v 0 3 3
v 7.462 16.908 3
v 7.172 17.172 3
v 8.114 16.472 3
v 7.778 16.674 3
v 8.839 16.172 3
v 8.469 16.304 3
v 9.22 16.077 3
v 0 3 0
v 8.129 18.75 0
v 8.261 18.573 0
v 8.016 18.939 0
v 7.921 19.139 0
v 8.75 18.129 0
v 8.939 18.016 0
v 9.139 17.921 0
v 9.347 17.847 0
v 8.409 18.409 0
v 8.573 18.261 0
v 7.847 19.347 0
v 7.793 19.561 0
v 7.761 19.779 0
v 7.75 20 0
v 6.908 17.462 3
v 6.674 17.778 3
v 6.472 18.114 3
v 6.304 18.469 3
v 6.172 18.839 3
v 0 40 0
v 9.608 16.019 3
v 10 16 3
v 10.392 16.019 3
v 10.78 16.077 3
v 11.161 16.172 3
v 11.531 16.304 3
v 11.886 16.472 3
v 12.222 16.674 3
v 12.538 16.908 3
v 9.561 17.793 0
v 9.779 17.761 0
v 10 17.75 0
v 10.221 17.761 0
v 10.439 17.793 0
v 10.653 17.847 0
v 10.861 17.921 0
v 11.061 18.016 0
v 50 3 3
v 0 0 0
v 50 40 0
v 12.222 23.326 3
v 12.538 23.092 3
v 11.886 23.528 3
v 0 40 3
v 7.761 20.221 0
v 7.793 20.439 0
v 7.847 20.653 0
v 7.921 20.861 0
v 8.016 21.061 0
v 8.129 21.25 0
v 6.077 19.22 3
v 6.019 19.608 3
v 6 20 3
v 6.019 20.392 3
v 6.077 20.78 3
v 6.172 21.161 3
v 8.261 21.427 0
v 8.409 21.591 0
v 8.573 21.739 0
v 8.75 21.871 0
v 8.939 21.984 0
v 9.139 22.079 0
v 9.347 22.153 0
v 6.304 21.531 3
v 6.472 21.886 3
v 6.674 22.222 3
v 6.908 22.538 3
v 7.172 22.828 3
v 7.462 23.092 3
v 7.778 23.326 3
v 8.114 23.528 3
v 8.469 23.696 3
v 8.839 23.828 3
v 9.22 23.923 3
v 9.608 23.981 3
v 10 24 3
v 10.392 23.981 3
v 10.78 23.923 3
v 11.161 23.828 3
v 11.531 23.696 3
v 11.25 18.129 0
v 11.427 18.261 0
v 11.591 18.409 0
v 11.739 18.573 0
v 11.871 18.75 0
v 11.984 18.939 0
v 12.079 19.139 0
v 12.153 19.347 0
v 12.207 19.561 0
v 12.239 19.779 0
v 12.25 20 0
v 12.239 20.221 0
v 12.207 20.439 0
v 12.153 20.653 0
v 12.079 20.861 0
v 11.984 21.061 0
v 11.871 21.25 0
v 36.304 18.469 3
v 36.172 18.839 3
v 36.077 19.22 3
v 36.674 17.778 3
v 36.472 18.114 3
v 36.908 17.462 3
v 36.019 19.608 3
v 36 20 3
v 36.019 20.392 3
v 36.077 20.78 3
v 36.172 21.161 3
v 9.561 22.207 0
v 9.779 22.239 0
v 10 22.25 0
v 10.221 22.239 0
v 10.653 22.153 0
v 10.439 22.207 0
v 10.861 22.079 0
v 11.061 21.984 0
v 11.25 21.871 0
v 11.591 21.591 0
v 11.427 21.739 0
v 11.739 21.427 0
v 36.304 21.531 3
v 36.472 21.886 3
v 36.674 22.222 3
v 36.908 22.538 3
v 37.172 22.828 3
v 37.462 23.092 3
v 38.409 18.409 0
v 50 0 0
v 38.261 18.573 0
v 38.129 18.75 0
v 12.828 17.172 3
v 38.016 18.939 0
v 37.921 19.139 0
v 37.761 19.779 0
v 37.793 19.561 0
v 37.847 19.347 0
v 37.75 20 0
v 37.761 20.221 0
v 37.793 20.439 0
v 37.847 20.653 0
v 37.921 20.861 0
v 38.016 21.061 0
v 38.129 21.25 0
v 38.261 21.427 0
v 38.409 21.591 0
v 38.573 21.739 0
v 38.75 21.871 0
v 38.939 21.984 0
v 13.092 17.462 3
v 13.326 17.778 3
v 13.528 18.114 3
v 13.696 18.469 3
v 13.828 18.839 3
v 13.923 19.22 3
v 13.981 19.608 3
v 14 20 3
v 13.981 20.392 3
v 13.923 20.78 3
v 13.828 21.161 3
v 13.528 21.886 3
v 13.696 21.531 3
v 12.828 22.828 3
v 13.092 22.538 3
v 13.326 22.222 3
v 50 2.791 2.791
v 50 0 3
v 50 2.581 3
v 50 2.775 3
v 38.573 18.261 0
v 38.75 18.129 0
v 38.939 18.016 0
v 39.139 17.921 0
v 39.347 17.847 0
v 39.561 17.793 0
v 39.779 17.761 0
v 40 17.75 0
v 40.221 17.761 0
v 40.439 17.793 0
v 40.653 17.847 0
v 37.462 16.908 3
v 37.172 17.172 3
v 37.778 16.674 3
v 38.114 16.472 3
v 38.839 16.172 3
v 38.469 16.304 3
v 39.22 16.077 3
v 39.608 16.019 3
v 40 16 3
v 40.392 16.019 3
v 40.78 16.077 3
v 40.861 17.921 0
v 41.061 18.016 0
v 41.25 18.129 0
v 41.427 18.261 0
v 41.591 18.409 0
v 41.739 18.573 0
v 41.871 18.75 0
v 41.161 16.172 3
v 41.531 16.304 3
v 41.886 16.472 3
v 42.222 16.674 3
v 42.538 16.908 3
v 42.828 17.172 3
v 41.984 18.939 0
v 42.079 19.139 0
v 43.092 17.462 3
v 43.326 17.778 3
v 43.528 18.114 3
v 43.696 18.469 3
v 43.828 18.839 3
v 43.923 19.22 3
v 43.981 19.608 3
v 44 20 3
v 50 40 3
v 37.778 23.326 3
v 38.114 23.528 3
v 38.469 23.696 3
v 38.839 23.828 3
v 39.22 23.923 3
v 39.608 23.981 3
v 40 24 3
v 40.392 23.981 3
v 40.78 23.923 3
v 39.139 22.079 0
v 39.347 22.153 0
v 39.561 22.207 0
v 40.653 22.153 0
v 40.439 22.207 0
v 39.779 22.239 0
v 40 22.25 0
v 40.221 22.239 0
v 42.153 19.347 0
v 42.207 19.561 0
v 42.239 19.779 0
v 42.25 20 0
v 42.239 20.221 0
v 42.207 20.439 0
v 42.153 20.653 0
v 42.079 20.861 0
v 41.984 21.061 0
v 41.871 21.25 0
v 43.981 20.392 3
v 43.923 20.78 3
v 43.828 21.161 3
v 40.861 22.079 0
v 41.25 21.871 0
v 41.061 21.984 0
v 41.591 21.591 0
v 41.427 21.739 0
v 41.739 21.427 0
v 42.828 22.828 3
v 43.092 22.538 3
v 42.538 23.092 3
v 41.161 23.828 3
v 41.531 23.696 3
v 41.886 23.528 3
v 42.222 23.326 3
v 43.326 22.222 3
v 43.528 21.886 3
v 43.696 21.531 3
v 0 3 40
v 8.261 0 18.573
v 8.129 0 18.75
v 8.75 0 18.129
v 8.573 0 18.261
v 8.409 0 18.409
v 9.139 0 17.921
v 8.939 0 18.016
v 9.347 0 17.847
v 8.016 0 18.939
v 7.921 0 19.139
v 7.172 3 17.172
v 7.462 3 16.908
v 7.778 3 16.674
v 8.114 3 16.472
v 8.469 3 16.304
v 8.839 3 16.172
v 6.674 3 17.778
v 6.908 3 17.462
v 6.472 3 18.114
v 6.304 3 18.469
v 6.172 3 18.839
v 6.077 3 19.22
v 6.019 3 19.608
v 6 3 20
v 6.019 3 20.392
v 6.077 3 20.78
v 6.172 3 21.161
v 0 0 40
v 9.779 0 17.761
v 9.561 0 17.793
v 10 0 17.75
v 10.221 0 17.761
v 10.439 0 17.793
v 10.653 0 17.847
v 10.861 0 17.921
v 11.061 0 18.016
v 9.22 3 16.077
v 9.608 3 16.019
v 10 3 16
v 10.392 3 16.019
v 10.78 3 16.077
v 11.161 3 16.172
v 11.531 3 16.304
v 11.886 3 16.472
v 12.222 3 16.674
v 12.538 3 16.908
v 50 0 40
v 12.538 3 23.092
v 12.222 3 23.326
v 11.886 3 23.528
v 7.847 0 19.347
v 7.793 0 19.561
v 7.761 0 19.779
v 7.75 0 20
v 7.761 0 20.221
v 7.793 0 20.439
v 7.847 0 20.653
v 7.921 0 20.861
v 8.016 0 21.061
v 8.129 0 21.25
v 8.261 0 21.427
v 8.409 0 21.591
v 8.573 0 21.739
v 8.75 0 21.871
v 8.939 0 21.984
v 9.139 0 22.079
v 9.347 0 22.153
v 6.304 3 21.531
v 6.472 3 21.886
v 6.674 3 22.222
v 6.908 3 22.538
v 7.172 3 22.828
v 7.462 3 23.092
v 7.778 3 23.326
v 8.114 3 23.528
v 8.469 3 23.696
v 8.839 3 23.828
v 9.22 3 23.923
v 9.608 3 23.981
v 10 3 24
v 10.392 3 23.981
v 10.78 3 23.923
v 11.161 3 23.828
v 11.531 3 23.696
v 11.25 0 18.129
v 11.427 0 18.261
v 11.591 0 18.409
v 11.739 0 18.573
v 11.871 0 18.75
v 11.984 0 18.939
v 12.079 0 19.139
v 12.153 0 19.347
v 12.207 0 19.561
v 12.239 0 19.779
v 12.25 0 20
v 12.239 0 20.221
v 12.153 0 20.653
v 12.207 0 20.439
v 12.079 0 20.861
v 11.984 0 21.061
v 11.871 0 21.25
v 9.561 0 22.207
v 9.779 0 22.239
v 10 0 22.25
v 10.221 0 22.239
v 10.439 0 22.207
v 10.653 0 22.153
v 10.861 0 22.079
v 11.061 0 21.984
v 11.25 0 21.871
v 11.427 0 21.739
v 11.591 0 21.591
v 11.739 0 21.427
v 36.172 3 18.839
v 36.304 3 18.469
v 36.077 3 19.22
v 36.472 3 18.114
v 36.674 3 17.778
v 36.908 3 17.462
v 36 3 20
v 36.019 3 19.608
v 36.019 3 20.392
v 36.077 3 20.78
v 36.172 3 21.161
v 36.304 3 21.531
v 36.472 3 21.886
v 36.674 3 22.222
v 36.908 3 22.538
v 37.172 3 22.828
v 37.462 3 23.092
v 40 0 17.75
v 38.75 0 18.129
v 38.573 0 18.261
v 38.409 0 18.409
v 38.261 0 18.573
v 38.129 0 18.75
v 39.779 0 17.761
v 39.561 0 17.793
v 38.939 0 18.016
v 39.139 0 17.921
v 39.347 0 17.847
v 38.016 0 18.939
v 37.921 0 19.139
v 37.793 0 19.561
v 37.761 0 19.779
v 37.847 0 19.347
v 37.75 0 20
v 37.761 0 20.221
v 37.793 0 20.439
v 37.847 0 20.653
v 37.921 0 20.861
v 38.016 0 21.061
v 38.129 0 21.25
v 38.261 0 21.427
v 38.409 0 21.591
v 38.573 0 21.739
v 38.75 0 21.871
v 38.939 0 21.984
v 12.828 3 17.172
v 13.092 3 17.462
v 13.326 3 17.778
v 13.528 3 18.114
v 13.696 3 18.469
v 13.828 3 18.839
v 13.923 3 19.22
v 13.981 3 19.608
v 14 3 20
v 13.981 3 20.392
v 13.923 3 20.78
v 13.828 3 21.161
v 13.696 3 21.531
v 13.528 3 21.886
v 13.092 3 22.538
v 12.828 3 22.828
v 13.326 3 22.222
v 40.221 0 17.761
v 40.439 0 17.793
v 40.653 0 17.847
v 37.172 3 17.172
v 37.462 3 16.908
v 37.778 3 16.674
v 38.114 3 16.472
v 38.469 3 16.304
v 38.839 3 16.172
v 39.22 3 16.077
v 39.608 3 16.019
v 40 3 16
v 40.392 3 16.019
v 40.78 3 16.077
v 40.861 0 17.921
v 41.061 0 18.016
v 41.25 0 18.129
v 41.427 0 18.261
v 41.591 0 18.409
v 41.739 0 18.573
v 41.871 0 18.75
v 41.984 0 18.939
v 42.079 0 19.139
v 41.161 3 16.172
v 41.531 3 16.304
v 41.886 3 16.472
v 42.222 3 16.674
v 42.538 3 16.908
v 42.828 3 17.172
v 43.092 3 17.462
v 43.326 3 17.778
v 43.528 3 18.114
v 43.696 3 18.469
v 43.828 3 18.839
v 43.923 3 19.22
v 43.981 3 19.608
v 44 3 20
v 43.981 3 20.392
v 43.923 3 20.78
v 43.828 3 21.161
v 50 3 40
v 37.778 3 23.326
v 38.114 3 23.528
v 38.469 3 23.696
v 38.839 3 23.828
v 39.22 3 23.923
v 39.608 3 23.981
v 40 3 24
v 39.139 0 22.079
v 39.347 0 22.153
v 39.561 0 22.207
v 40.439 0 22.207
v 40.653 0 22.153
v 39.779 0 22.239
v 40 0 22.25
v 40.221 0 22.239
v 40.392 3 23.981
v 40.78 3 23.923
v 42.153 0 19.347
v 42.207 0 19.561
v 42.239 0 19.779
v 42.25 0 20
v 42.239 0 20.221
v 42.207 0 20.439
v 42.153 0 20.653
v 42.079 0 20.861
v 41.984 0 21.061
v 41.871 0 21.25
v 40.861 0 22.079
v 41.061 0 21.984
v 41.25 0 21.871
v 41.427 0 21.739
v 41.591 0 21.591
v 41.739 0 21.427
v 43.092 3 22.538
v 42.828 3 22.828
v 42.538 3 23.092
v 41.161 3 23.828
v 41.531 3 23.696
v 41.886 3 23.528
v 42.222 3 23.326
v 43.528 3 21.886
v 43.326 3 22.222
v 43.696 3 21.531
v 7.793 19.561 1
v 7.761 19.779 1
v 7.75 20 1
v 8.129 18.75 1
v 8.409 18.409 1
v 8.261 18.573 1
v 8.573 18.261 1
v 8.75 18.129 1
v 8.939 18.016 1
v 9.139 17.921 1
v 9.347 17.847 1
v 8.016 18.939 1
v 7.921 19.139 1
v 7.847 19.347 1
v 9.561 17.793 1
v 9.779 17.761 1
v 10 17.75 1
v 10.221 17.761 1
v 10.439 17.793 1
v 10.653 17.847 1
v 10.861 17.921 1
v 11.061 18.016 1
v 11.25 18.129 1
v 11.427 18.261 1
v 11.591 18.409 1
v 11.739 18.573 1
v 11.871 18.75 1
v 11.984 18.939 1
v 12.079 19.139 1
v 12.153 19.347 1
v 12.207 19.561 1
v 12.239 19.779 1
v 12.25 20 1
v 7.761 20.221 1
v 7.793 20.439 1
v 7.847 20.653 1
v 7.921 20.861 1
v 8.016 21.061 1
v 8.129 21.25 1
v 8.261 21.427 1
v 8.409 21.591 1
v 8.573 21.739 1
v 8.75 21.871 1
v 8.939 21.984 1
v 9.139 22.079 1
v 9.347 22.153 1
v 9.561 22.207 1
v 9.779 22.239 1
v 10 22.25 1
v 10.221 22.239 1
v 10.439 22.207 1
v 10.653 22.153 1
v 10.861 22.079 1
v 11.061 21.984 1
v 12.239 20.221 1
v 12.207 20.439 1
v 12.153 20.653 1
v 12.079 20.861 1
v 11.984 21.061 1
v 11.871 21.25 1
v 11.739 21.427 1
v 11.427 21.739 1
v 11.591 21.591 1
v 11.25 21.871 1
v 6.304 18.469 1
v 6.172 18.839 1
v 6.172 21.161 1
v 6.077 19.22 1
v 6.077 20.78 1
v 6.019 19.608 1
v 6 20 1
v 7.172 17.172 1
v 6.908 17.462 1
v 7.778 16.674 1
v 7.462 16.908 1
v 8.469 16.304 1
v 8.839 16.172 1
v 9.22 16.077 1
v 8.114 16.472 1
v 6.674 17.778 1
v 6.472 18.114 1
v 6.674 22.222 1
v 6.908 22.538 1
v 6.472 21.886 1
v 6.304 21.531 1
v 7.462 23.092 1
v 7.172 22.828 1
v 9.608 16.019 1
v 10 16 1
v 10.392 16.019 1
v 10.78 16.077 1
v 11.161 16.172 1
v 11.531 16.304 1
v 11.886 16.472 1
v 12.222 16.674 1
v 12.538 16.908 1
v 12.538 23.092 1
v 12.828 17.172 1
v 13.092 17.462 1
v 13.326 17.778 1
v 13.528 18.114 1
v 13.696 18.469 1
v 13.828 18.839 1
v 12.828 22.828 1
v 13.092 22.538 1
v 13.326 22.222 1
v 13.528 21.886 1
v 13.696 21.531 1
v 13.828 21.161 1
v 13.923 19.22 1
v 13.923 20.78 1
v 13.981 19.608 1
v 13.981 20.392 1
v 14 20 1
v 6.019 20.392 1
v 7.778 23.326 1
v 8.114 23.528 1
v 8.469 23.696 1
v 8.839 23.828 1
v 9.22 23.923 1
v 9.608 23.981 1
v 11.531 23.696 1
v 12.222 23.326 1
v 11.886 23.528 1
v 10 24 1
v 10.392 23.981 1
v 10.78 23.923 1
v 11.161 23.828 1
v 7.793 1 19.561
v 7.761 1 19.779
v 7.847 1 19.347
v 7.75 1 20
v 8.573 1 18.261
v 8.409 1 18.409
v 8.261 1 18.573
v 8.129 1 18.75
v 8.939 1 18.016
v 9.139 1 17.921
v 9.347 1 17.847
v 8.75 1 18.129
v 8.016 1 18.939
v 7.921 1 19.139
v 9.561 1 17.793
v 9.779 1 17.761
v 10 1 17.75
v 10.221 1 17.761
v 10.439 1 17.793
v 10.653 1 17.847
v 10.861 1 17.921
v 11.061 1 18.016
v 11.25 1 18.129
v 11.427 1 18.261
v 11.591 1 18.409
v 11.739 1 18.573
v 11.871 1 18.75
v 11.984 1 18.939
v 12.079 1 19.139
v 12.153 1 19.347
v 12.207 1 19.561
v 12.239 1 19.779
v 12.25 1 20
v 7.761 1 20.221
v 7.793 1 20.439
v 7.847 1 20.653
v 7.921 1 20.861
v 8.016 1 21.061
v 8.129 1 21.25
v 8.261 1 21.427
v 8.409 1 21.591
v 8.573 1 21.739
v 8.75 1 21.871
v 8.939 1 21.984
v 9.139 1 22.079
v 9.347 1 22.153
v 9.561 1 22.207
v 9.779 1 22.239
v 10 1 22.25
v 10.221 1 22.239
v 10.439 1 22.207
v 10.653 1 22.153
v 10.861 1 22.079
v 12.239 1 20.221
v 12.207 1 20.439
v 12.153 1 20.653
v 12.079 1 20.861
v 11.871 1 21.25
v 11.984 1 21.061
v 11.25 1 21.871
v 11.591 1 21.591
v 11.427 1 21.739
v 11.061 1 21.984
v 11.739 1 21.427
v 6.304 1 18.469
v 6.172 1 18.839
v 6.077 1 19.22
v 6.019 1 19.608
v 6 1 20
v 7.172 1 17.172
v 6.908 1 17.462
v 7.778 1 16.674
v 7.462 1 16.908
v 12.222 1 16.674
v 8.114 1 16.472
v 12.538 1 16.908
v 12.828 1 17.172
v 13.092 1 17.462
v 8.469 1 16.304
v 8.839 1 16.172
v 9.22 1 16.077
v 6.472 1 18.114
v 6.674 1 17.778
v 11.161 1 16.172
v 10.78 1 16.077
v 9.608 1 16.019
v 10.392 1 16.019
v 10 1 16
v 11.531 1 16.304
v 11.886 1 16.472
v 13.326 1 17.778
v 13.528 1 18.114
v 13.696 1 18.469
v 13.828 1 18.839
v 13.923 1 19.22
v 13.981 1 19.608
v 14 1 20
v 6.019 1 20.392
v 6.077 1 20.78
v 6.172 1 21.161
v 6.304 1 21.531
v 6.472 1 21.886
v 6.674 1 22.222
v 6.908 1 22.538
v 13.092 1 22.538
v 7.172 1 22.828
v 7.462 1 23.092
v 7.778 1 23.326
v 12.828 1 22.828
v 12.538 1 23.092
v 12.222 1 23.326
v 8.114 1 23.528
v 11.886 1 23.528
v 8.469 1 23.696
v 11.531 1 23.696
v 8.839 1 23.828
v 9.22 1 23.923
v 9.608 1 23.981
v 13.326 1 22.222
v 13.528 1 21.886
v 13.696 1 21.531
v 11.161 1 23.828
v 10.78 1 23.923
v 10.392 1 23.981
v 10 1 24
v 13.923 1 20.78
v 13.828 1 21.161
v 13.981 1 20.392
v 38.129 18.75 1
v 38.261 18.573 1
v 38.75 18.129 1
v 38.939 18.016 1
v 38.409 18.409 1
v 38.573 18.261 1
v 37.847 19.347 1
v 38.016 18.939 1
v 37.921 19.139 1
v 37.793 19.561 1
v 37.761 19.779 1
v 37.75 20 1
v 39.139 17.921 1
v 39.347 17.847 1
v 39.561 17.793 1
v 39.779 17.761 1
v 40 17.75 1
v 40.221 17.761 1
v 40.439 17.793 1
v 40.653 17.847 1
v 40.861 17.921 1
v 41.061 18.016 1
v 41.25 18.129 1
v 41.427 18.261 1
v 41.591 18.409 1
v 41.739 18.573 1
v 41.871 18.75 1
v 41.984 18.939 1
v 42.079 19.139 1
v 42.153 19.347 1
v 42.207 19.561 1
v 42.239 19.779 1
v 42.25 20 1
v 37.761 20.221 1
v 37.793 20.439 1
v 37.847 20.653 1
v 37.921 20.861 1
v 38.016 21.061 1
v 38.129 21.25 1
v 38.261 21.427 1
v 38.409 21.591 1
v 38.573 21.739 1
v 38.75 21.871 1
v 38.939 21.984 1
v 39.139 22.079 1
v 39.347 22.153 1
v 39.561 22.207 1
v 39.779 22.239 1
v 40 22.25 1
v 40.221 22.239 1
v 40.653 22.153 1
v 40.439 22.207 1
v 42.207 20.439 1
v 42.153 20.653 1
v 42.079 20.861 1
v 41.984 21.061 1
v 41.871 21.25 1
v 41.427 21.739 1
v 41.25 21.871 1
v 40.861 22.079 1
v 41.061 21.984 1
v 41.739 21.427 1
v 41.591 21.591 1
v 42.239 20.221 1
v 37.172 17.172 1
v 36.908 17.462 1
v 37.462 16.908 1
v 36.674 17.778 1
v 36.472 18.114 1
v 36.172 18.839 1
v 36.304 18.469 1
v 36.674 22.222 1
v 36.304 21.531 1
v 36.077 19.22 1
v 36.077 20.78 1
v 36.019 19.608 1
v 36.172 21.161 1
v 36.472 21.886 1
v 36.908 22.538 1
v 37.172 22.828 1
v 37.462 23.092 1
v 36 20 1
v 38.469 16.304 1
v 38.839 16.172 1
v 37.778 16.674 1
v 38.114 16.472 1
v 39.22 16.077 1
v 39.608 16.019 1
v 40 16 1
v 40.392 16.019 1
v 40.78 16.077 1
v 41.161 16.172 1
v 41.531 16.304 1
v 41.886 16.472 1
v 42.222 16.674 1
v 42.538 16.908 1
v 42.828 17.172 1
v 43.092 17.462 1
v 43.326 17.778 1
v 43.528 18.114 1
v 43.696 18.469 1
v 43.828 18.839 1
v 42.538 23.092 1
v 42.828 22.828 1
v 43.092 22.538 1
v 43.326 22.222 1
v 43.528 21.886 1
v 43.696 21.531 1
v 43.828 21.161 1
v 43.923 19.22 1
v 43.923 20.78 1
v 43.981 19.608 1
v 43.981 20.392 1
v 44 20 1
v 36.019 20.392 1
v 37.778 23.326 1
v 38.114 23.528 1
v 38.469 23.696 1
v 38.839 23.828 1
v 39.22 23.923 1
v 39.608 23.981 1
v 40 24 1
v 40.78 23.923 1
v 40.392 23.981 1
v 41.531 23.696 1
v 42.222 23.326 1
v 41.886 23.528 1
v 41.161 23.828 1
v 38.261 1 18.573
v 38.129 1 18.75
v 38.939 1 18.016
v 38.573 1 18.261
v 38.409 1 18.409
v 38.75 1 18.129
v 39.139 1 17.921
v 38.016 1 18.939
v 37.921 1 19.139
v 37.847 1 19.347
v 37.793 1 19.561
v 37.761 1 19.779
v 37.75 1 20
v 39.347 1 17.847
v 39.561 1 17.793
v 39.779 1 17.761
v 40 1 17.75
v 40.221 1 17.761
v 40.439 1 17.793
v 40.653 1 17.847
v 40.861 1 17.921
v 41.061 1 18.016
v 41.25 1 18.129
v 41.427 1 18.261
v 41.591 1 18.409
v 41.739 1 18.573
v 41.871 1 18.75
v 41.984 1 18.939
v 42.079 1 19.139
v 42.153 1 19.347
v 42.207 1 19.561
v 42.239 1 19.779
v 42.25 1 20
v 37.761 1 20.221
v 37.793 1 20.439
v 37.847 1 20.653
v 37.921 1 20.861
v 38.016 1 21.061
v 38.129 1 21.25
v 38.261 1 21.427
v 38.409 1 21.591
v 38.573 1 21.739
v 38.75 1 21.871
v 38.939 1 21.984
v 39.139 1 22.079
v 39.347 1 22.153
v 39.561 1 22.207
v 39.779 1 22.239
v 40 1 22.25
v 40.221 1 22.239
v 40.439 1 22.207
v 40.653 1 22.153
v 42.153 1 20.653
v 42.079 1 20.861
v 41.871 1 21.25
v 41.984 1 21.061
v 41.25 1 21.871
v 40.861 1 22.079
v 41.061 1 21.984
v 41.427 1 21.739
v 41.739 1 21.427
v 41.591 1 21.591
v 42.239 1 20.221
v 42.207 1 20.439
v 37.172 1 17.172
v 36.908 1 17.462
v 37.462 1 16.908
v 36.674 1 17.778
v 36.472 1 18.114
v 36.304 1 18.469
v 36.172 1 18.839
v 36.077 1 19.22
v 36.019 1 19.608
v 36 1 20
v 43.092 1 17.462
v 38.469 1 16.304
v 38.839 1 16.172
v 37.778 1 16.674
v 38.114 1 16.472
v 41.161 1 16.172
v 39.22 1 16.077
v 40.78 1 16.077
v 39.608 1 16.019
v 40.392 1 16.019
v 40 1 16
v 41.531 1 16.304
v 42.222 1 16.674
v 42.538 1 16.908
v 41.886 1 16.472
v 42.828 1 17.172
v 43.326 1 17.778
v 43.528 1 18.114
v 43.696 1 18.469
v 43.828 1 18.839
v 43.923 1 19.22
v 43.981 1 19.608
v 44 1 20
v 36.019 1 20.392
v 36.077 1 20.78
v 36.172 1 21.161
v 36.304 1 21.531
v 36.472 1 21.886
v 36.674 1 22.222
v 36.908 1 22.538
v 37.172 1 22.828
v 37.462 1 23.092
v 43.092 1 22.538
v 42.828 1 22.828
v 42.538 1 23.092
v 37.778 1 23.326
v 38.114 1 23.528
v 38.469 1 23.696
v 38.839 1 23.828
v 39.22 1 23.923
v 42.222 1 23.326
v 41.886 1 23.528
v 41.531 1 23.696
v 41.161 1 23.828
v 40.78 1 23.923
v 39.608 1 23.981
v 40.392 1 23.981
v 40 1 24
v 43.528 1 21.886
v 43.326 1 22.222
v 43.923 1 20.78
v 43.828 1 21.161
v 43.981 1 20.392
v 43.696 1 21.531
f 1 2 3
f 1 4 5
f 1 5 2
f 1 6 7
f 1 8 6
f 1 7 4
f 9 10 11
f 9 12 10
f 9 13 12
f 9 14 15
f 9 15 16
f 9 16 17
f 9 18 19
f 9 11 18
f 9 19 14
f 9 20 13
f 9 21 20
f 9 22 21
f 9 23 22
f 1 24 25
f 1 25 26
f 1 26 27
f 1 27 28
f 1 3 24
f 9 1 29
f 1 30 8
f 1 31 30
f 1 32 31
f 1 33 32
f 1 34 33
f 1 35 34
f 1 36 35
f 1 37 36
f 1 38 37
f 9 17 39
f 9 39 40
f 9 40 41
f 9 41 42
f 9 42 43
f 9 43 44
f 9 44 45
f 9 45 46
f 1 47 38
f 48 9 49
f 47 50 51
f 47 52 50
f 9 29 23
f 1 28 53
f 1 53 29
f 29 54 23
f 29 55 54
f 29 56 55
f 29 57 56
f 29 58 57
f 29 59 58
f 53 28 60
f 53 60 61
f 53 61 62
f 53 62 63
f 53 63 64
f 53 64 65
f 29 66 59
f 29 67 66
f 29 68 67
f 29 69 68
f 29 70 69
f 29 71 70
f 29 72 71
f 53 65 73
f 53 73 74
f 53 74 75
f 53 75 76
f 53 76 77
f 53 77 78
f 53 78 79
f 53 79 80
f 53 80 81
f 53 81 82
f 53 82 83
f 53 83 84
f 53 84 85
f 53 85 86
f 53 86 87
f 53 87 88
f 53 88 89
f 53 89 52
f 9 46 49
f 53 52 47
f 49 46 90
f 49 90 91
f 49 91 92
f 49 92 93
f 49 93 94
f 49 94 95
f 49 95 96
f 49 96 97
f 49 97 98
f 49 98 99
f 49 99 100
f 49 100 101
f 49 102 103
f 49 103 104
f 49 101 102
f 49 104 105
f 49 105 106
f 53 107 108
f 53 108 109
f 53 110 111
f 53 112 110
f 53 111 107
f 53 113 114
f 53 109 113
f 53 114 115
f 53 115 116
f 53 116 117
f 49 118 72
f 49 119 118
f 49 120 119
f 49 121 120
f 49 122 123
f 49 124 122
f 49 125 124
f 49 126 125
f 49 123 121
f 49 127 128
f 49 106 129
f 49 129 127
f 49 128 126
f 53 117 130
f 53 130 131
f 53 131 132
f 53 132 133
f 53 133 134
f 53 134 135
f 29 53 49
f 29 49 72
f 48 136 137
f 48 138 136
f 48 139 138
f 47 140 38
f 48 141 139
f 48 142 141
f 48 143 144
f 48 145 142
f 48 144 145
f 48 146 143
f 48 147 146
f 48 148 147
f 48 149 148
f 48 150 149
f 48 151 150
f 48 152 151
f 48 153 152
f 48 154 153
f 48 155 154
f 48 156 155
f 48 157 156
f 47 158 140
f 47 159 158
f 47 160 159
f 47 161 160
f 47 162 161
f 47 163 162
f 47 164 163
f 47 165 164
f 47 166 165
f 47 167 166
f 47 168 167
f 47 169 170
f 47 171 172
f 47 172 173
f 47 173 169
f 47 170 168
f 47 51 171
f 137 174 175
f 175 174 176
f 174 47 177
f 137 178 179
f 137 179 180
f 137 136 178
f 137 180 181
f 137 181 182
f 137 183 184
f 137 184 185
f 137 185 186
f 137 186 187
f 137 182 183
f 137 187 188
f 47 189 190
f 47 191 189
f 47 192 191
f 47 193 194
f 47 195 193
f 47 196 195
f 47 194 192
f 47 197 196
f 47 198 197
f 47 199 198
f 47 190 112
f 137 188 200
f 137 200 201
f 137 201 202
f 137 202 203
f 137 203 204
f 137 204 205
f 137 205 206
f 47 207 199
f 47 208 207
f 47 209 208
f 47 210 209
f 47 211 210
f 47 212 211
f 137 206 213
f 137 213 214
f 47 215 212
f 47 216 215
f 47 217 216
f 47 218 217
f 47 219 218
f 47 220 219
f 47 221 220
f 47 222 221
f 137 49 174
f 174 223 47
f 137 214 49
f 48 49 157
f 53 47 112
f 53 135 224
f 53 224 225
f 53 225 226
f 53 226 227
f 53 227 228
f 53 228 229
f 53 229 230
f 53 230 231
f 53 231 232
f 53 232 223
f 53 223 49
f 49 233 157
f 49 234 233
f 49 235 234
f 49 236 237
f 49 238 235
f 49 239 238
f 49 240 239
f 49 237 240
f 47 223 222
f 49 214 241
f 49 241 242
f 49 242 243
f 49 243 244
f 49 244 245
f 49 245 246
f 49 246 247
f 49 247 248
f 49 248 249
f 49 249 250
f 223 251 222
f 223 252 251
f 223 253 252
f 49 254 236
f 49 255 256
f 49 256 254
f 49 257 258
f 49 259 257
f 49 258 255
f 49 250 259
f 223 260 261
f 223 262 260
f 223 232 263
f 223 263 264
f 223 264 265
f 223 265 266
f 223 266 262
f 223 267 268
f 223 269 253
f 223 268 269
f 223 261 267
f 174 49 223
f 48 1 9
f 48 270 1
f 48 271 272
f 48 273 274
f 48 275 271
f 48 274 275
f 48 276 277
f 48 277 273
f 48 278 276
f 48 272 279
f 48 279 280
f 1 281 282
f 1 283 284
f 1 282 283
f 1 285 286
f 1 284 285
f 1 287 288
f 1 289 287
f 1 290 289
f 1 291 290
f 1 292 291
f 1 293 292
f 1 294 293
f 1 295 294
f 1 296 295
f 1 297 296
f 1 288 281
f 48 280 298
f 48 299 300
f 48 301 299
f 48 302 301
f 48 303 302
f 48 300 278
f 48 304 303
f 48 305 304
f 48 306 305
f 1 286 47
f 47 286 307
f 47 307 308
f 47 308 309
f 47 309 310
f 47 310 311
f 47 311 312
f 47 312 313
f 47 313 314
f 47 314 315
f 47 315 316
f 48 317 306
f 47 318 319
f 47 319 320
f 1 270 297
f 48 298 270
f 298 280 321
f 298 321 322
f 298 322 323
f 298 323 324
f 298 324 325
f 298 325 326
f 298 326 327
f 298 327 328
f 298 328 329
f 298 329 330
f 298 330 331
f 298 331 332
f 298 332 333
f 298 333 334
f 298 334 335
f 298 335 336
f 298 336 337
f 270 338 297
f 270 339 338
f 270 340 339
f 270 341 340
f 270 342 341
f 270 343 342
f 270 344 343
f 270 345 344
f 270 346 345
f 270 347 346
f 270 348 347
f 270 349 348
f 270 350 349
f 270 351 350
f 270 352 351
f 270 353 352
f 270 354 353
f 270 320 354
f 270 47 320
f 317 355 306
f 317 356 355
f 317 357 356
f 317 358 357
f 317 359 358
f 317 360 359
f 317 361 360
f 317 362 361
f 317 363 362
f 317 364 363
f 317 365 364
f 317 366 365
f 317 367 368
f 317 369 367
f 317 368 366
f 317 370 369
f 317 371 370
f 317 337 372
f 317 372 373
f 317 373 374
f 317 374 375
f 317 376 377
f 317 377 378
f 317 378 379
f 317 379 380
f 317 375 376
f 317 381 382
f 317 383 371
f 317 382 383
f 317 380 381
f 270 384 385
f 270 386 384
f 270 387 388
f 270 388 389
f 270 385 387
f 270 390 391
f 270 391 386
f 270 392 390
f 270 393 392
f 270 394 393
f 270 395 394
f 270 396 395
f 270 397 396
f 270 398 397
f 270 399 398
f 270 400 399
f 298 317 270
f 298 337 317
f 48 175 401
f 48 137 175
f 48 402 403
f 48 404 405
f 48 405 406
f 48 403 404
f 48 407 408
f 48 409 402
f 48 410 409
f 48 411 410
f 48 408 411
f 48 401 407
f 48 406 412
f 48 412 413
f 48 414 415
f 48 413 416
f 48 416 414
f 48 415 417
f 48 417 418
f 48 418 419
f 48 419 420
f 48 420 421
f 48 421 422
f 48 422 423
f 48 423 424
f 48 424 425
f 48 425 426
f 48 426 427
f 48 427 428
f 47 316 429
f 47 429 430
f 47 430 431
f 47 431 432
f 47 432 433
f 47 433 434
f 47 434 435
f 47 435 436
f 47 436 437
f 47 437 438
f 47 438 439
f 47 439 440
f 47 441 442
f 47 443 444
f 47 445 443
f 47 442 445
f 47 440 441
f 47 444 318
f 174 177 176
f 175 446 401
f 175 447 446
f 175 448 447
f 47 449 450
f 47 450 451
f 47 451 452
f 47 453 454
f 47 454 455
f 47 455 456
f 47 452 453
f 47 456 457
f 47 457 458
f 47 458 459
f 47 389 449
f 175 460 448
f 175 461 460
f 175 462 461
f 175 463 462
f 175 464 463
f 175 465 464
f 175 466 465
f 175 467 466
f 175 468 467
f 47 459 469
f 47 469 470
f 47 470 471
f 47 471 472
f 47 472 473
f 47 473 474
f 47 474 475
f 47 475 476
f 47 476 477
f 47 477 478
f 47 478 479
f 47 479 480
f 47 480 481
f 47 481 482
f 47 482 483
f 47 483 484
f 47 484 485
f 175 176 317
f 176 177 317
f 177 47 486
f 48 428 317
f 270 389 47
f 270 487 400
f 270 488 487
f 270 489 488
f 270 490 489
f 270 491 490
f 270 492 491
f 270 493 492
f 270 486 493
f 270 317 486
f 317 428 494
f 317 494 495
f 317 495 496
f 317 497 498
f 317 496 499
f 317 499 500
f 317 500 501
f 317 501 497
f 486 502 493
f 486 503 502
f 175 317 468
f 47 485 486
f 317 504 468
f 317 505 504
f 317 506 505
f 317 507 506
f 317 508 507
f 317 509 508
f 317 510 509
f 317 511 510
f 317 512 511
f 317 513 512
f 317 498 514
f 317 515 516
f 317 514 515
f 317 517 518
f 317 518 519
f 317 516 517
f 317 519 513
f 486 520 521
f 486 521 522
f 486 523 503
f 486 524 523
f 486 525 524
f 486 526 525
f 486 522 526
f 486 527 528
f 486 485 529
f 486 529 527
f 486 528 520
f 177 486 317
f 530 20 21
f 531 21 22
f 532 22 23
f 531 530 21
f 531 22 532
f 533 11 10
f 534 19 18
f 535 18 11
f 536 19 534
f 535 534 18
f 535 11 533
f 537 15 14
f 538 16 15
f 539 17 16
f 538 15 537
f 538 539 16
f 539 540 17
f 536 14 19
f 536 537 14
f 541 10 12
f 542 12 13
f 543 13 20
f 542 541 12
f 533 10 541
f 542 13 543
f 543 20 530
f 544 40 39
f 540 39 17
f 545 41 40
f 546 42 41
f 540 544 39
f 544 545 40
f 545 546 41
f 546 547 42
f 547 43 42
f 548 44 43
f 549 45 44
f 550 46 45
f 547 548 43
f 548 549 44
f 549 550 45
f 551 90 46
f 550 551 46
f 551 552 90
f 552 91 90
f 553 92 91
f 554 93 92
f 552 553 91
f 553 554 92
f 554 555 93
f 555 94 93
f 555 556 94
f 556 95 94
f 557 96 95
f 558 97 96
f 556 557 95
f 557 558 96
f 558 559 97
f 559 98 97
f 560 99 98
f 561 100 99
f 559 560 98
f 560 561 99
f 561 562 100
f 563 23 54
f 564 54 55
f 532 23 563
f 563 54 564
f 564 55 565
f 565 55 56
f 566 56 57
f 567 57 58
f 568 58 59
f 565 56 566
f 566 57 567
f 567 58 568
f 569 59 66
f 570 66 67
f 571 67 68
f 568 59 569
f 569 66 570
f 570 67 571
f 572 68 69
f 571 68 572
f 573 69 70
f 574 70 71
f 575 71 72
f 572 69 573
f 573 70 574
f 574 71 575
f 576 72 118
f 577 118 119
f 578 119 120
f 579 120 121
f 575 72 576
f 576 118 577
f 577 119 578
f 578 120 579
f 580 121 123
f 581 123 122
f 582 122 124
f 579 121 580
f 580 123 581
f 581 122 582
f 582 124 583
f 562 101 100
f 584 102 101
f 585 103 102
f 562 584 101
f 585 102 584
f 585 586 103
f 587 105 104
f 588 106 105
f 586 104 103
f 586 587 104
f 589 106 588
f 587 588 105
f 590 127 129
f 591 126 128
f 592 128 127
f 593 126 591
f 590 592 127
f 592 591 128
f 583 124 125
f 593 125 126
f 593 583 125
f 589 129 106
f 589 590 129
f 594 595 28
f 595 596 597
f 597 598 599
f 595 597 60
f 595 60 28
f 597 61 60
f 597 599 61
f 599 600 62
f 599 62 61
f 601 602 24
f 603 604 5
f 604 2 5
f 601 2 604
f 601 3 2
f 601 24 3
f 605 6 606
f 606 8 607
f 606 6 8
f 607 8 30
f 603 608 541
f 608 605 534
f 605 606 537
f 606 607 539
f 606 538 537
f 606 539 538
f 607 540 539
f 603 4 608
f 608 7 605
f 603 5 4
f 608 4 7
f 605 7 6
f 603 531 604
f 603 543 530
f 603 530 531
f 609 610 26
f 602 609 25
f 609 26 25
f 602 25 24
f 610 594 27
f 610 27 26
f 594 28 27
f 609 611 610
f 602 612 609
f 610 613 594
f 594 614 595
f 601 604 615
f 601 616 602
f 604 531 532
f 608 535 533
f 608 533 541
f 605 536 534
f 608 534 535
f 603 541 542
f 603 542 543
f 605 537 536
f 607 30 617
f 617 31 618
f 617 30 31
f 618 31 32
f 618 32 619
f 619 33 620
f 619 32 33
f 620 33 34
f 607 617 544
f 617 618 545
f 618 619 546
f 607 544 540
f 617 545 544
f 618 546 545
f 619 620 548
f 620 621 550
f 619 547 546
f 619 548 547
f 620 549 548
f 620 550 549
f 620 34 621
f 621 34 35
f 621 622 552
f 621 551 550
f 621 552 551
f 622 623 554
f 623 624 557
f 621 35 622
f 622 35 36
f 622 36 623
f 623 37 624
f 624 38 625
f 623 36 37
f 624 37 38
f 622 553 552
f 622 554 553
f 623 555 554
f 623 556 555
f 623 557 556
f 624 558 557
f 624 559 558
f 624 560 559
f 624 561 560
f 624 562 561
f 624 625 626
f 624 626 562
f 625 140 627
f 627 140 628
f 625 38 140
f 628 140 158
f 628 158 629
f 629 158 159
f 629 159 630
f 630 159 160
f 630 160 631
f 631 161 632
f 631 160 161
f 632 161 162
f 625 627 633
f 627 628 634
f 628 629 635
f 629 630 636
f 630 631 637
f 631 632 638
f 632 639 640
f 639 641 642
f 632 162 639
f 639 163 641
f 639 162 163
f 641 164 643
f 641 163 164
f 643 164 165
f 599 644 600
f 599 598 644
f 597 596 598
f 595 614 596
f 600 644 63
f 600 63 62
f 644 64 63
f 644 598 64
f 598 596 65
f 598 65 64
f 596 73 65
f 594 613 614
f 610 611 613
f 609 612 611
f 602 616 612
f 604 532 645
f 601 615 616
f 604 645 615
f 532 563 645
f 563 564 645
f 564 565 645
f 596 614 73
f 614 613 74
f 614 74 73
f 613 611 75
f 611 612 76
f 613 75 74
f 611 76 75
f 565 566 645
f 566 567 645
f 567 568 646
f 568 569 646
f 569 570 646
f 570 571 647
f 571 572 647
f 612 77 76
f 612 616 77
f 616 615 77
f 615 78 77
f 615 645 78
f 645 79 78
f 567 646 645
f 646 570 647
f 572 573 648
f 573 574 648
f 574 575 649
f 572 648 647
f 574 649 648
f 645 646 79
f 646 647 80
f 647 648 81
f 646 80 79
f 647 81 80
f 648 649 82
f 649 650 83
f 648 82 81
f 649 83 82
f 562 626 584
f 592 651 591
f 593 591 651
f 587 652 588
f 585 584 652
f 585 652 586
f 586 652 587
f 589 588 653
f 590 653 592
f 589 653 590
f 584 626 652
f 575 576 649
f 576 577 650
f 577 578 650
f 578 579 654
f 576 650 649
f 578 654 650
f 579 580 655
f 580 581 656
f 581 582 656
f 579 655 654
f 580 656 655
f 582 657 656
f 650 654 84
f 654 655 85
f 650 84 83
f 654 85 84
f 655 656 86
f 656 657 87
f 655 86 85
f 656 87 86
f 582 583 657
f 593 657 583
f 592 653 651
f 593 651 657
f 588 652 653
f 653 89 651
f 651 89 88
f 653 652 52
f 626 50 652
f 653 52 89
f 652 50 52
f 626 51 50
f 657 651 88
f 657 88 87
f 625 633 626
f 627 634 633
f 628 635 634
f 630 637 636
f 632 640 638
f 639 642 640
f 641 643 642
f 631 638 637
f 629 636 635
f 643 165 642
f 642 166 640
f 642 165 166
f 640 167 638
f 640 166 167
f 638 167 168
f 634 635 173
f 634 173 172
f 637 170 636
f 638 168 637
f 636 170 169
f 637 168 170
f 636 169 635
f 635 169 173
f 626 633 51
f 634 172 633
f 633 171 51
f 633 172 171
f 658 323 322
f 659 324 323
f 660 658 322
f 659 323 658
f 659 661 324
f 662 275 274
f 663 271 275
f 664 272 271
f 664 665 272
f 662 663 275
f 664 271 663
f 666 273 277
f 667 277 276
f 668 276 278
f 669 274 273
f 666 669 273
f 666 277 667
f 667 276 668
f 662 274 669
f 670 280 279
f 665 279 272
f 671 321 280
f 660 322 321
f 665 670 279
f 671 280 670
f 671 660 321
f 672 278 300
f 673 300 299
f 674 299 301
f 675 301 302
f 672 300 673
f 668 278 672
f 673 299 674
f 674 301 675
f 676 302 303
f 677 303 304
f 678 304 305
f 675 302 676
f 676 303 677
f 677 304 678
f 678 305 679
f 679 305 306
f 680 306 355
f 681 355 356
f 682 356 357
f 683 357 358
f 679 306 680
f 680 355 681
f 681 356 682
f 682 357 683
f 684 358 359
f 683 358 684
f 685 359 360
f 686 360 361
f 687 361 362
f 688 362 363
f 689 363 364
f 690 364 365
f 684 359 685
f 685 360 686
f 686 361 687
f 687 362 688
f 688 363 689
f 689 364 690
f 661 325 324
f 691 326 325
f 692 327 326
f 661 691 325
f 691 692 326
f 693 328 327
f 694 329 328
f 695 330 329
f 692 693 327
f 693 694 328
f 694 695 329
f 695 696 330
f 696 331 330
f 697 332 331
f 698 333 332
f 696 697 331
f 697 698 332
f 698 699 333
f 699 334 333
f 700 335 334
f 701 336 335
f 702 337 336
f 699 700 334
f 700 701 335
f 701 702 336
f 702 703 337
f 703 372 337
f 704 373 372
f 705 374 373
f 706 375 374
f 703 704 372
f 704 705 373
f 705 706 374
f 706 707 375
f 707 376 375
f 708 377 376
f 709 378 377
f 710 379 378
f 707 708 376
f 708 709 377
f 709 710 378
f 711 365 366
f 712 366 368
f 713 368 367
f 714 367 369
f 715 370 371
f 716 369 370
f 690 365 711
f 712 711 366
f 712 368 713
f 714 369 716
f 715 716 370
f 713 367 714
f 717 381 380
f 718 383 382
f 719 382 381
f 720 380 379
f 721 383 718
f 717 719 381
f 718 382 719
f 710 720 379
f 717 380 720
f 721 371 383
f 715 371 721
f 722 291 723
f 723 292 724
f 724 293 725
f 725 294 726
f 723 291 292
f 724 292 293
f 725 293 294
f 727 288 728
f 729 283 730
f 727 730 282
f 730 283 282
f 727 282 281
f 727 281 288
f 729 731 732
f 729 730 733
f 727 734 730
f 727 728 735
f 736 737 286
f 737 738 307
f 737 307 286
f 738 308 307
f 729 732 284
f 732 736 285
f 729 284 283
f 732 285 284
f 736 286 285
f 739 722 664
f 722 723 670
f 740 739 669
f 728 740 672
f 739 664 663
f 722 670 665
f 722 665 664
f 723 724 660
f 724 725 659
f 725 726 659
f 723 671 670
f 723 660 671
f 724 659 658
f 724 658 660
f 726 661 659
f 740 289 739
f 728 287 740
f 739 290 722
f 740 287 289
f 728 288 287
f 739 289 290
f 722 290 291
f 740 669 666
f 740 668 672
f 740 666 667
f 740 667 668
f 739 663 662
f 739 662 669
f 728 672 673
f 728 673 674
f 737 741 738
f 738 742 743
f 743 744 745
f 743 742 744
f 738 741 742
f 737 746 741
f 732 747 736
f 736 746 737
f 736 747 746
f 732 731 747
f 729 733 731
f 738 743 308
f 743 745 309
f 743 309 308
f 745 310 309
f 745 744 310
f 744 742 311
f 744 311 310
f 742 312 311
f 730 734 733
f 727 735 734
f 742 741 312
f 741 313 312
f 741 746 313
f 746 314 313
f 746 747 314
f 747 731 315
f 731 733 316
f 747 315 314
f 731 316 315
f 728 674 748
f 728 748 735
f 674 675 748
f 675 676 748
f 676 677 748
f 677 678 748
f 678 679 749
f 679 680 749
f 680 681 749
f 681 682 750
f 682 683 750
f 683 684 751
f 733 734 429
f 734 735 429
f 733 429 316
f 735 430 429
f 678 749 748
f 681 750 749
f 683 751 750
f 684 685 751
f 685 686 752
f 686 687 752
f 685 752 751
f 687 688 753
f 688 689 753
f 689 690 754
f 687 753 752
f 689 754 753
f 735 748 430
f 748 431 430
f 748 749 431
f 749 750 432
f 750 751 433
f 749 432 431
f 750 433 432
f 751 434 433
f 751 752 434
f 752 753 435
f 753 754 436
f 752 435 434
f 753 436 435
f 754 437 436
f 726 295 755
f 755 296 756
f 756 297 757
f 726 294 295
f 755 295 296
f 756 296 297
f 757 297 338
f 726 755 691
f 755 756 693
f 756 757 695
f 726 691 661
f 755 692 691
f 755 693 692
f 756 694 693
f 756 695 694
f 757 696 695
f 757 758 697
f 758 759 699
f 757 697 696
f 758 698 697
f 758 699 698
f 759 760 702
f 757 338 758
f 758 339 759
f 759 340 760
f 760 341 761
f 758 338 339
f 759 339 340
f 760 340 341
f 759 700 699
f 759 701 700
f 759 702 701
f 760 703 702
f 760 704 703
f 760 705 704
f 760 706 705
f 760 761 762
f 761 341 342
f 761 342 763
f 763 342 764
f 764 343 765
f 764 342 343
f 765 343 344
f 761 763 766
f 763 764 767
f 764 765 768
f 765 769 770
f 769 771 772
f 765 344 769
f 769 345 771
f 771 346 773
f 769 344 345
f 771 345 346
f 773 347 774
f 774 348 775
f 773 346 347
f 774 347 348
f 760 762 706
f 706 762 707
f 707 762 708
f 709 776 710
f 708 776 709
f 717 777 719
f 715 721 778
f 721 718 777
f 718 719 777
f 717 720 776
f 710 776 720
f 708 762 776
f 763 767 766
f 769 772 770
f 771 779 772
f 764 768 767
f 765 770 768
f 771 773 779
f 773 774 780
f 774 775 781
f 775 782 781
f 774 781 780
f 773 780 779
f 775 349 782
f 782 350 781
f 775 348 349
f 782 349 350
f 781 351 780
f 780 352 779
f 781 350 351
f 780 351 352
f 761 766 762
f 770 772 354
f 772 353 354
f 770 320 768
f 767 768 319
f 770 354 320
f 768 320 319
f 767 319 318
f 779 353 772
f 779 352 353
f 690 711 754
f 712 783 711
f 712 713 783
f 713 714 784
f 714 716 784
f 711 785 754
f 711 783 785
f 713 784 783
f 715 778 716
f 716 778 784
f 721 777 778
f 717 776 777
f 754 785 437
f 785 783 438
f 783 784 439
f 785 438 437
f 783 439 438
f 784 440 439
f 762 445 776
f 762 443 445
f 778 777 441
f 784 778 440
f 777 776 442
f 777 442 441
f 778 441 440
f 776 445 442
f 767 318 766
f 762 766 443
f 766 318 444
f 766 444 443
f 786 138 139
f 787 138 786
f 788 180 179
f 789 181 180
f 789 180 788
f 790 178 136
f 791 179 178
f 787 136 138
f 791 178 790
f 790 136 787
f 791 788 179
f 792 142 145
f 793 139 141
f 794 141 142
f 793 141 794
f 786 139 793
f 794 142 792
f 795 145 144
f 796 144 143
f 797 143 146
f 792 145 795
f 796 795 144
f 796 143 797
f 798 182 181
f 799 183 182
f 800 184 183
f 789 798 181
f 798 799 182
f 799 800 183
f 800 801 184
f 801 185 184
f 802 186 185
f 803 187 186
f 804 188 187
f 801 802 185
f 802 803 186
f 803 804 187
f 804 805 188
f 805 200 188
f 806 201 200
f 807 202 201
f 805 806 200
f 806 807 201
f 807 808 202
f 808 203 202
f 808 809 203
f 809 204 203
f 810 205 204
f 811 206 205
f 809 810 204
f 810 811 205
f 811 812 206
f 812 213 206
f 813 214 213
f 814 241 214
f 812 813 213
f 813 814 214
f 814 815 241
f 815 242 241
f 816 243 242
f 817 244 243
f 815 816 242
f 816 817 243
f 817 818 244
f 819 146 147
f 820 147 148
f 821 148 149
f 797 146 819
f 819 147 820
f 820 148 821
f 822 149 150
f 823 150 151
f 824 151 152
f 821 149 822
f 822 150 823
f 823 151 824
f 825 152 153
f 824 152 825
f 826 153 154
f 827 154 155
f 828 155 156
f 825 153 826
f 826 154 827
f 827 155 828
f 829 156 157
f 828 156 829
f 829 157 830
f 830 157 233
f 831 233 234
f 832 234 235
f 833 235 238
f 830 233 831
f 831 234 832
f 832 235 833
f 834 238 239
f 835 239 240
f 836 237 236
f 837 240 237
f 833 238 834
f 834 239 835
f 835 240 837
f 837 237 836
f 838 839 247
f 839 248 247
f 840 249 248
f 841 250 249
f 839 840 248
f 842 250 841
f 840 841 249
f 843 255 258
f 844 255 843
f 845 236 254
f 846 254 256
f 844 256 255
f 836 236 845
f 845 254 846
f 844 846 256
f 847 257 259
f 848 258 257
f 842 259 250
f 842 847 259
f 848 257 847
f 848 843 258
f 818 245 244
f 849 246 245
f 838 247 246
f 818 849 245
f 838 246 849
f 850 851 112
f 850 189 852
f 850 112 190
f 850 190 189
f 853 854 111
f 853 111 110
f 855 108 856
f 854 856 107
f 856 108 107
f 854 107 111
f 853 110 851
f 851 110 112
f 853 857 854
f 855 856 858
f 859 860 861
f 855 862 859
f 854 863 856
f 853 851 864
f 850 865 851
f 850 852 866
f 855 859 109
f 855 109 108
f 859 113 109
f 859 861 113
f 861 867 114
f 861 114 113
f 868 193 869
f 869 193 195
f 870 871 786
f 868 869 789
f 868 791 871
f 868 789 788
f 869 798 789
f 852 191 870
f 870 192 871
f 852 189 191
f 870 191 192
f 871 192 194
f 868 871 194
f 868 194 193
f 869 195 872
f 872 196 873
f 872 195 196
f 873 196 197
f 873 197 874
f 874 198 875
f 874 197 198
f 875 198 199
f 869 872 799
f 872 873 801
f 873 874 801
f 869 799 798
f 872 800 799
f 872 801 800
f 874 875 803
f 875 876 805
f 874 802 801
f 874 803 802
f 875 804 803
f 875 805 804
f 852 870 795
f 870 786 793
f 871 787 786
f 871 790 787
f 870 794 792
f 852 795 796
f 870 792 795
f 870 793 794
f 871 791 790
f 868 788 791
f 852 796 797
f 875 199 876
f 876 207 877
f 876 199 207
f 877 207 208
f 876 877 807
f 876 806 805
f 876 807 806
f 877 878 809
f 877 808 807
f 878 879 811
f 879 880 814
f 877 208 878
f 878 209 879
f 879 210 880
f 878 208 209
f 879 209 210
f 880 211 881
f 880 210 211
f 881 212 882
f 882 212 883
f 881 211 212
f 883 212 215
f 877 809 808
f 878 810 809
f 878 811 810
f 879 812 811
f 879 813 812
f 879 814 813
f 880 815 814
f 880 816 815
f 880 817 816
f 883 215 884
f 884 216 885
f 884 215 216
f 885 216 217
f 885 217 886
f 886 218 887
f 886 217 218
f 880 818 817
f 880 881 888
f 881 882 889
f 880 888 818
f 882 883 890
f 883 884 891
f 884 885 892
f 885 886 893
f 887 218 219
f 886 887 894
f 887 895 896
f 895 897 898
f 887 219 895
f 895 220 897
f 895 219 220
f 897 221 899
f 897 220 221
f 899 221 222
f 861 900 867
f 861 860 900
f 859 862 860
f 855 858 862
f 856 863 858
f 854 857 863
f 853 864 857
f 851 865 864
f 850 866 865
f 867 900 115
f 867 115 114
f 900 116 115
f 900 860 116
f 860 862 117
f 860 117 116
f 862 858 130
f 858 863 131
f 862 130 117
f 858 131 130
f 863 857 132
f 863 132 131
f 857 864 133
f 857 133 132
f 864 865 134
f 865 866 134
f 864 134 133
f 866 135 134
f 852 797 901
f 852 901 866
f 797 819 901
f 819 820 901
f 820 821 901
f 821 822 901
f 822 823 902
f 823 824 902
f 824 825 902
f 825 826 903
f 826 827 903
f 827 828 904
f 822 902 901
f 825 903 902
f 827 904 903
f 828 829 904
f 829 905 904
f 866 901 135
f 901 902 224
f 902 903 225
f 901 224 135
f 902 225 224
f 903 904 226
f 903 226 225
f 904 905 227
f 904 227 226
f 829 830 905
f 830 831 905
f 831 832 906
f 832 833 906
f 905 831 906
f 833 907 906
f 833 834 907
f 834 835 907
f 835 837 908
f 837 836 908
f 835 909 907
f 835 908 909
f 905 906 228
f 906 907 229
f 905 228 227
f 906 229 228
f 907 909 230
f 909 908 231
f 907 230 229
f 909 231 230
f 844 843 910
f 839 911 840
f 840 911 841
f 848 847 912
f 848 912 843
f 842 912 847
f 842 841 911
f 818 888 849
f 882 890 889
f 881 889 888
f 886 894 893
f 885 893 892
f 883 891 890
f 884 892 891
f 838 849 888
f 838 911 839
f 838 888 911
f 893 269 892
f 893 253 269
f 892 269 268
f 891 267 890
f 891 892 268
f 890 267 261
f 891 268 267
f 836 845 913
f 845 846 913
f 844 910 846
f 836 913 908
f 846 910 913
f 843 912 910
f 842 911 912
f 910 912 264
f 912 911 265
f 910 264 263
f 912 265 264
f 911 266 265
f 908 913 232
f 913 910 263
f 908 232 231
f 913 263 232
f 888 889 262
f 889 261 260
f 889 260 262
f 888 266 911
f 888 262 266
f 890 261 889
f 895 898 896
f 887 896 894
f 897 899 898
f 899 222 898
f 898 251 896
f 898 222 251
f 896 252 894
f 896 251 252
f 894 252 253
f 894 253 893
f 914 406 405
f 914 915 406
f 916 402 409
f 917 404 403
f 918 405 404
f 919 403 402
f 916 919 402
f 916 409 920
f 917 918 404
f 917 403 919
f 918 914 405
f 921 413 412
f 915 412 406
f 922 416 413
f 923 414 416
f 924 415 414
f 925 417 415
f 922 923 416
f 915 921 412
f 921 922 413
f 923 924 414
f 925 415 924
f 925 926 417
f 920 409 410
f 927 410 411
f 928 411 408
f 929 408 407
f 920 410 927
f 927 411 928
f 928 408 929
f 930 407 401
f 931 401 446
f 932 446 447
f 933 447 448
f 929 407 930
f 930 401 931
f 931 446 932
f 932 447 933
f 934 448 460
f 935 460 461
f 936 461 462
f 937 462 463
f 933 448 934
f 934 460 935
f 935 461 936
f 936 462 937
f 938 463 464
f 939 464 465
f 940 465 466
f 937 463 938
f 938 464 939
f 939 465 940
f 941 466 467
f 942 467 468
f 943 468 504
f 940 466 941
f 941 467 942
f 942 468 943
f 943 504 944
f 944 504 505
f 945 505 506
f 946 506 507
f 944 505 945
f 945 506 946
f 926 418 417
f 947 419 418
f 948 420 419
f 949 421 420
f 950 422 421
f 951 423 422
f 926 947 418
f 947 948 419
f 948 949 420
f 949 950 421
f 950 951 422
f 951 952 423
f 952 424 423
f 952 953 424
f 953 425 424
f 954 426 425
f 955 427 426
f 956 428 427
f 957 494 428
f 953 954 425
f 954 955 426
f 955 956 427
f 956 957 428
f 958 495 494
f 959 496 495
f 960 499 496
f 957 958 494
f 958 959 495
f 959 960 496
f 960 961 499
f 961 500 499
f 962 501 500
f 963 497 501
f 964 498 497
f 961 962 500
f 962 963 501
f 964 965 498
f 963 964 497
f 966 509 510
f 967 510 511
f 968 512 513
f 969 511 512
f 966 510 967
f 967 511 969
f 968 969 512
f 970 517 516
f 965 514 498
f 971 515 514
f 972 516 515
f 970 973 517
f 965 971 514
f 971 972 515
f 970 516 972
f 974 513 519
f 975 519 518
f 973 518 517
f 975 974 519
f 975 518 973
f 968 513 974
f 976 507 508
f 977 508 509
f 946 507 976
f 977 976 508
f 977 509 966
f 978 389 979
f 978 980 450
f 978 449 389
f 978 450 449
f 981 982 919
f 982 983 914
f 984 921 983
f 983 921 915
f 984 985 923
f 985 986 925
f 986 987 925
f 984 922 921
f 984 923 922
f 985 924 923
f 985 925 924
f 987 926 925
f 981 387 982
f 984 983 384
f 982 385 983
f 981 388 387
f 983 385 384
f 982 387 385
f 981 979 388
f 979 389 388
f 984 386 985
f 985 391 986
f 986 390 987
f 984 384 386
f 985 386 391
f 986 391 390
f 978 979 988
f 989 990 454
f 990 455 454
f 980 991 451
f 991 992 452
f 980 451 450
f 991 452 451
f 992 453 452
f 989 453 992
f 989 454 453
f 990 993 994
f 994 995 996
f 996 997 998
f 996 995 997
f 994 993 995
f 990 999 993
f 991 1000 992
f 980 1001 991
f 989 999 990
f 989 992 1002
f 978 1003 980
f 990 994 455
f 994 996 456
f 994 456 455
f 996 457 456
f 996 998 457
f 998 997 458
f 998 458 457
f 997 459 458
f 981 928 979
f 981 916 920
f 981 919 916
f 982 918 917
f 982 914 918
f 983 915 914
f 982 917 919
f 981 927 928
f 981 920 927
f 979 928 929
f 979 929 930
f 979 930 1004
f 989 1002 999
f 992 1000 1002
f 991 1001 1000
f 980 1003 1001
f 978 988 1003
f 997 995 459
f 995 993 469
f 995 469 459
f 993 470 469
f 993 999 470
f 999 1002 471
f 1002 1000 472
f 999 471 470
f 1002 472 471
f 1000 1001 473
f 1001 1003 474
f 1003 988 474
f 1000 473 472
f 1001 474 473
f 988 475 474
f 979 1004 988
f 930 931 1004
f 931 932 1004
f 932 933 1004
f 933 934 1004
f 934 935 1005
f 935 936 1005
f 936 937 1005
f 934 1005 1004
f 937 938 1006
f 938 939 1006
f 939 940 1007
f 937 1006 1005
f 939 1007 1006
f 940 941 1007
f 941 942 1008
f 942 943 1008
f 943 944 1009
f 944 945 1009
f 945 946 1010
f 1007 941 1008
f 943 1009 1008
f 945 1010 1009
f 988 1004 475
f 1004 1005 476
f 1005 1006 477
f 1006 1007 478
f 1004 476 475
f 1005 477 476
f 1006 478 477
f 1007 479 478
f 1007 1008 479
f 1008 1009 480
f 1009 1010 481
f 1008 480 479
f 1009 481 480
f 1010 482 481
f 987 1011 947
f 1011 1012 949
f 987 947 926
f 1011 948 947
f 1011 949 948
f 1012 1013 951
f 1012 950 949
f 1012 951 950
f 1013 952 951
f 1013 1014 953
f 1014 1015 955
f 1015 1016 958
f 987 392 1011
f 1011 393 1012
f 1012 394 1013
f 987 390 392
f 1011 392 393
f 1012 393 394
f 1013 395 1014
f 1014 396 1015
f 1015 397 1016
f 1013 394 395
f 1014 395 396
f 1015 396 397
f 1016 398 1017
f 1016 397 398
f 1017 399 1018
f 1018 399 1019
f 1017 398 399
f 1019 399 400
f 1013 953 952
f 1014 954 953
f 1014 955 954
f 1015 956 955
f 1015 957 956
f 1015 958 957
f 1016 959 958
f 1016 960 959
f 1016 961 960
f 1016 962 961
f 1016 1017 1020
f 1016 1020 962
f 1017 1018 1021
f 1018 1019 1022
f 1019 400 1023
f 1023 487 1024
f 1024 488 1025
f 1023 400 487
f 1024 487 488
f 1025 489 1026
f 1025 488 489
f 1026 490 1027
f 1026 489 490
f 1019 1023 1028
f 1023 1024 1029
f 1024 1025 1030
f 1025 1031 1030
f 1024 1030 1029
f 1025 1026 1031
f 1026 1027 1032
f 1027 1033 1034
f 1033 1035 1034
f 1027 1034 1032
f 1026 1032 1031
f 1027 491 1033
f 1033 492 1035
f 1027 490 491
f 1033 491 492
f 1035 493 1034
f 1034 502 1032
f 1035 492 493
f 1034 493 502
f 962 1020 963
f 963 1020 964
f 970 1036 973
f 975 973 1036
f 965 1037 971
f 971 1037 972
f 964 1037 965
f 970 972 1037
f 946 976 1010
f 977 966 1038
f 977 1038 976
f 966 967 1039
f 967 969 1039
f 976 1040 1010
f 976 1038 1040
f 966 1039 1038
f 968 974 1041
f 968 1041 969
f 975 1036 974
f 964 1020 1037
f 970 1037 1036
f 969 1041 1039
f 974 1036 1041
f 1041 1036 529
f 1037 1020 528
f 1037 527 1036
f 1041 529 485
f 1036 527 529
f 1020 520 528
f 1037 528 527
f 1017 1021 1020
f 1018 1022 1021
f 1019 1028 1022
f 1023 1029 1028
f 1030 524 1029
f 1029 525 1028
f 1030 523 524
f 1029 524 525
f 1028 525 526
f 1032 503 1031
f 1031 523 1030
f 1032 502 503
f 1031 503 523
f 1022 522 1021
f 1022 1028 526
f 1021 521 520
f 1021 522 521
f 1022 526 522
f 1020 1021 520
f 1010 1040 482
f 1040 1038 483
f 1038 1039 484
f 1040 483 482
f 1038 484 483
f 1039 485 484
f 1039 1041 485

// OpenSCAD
$fn = 64;

thickness = 3;
flange_width = 50;
flange_depth = 40;
flange_height = 40;

through_diameter = 4.5;
countersink_diameter = 8;
countersink_depth = 2;
through_length = thickness + 6;

horizontal_center = flange_depth / 2;
vertical_center = flange_height / 2;
hole_positions = [10, flange_width - 10];

difference() {
    union() {
        cube([flange_width, flange_depth, thickness]);
        cube([flange_width, thickness, flange_height]);
    }

    for (x = hole_positions) {
        translate([x, horizontal_center, thickness / 2])
            cylinder(h = through_length, r = through_diameter / 2, center = true);

        translate([x, horizontal_center, thickness - countersink_depth / 2])
            cylinder(h = countersink_depth, r = countersink_diameter / 2, center = true);

        translate([x, thickness / 2, vertical_center])
            rotate([-90, 0, 0])
                cylinder(h = through_length, r = through_diameter / 2, center = true);

        translate([x, thickness - countersink_depth / 2, vertical_center])
            rotate([-90, 0, 0])
                cylinder(h = countersink_depth, r = countersink_diameter / 2, center = true);
    }
}
